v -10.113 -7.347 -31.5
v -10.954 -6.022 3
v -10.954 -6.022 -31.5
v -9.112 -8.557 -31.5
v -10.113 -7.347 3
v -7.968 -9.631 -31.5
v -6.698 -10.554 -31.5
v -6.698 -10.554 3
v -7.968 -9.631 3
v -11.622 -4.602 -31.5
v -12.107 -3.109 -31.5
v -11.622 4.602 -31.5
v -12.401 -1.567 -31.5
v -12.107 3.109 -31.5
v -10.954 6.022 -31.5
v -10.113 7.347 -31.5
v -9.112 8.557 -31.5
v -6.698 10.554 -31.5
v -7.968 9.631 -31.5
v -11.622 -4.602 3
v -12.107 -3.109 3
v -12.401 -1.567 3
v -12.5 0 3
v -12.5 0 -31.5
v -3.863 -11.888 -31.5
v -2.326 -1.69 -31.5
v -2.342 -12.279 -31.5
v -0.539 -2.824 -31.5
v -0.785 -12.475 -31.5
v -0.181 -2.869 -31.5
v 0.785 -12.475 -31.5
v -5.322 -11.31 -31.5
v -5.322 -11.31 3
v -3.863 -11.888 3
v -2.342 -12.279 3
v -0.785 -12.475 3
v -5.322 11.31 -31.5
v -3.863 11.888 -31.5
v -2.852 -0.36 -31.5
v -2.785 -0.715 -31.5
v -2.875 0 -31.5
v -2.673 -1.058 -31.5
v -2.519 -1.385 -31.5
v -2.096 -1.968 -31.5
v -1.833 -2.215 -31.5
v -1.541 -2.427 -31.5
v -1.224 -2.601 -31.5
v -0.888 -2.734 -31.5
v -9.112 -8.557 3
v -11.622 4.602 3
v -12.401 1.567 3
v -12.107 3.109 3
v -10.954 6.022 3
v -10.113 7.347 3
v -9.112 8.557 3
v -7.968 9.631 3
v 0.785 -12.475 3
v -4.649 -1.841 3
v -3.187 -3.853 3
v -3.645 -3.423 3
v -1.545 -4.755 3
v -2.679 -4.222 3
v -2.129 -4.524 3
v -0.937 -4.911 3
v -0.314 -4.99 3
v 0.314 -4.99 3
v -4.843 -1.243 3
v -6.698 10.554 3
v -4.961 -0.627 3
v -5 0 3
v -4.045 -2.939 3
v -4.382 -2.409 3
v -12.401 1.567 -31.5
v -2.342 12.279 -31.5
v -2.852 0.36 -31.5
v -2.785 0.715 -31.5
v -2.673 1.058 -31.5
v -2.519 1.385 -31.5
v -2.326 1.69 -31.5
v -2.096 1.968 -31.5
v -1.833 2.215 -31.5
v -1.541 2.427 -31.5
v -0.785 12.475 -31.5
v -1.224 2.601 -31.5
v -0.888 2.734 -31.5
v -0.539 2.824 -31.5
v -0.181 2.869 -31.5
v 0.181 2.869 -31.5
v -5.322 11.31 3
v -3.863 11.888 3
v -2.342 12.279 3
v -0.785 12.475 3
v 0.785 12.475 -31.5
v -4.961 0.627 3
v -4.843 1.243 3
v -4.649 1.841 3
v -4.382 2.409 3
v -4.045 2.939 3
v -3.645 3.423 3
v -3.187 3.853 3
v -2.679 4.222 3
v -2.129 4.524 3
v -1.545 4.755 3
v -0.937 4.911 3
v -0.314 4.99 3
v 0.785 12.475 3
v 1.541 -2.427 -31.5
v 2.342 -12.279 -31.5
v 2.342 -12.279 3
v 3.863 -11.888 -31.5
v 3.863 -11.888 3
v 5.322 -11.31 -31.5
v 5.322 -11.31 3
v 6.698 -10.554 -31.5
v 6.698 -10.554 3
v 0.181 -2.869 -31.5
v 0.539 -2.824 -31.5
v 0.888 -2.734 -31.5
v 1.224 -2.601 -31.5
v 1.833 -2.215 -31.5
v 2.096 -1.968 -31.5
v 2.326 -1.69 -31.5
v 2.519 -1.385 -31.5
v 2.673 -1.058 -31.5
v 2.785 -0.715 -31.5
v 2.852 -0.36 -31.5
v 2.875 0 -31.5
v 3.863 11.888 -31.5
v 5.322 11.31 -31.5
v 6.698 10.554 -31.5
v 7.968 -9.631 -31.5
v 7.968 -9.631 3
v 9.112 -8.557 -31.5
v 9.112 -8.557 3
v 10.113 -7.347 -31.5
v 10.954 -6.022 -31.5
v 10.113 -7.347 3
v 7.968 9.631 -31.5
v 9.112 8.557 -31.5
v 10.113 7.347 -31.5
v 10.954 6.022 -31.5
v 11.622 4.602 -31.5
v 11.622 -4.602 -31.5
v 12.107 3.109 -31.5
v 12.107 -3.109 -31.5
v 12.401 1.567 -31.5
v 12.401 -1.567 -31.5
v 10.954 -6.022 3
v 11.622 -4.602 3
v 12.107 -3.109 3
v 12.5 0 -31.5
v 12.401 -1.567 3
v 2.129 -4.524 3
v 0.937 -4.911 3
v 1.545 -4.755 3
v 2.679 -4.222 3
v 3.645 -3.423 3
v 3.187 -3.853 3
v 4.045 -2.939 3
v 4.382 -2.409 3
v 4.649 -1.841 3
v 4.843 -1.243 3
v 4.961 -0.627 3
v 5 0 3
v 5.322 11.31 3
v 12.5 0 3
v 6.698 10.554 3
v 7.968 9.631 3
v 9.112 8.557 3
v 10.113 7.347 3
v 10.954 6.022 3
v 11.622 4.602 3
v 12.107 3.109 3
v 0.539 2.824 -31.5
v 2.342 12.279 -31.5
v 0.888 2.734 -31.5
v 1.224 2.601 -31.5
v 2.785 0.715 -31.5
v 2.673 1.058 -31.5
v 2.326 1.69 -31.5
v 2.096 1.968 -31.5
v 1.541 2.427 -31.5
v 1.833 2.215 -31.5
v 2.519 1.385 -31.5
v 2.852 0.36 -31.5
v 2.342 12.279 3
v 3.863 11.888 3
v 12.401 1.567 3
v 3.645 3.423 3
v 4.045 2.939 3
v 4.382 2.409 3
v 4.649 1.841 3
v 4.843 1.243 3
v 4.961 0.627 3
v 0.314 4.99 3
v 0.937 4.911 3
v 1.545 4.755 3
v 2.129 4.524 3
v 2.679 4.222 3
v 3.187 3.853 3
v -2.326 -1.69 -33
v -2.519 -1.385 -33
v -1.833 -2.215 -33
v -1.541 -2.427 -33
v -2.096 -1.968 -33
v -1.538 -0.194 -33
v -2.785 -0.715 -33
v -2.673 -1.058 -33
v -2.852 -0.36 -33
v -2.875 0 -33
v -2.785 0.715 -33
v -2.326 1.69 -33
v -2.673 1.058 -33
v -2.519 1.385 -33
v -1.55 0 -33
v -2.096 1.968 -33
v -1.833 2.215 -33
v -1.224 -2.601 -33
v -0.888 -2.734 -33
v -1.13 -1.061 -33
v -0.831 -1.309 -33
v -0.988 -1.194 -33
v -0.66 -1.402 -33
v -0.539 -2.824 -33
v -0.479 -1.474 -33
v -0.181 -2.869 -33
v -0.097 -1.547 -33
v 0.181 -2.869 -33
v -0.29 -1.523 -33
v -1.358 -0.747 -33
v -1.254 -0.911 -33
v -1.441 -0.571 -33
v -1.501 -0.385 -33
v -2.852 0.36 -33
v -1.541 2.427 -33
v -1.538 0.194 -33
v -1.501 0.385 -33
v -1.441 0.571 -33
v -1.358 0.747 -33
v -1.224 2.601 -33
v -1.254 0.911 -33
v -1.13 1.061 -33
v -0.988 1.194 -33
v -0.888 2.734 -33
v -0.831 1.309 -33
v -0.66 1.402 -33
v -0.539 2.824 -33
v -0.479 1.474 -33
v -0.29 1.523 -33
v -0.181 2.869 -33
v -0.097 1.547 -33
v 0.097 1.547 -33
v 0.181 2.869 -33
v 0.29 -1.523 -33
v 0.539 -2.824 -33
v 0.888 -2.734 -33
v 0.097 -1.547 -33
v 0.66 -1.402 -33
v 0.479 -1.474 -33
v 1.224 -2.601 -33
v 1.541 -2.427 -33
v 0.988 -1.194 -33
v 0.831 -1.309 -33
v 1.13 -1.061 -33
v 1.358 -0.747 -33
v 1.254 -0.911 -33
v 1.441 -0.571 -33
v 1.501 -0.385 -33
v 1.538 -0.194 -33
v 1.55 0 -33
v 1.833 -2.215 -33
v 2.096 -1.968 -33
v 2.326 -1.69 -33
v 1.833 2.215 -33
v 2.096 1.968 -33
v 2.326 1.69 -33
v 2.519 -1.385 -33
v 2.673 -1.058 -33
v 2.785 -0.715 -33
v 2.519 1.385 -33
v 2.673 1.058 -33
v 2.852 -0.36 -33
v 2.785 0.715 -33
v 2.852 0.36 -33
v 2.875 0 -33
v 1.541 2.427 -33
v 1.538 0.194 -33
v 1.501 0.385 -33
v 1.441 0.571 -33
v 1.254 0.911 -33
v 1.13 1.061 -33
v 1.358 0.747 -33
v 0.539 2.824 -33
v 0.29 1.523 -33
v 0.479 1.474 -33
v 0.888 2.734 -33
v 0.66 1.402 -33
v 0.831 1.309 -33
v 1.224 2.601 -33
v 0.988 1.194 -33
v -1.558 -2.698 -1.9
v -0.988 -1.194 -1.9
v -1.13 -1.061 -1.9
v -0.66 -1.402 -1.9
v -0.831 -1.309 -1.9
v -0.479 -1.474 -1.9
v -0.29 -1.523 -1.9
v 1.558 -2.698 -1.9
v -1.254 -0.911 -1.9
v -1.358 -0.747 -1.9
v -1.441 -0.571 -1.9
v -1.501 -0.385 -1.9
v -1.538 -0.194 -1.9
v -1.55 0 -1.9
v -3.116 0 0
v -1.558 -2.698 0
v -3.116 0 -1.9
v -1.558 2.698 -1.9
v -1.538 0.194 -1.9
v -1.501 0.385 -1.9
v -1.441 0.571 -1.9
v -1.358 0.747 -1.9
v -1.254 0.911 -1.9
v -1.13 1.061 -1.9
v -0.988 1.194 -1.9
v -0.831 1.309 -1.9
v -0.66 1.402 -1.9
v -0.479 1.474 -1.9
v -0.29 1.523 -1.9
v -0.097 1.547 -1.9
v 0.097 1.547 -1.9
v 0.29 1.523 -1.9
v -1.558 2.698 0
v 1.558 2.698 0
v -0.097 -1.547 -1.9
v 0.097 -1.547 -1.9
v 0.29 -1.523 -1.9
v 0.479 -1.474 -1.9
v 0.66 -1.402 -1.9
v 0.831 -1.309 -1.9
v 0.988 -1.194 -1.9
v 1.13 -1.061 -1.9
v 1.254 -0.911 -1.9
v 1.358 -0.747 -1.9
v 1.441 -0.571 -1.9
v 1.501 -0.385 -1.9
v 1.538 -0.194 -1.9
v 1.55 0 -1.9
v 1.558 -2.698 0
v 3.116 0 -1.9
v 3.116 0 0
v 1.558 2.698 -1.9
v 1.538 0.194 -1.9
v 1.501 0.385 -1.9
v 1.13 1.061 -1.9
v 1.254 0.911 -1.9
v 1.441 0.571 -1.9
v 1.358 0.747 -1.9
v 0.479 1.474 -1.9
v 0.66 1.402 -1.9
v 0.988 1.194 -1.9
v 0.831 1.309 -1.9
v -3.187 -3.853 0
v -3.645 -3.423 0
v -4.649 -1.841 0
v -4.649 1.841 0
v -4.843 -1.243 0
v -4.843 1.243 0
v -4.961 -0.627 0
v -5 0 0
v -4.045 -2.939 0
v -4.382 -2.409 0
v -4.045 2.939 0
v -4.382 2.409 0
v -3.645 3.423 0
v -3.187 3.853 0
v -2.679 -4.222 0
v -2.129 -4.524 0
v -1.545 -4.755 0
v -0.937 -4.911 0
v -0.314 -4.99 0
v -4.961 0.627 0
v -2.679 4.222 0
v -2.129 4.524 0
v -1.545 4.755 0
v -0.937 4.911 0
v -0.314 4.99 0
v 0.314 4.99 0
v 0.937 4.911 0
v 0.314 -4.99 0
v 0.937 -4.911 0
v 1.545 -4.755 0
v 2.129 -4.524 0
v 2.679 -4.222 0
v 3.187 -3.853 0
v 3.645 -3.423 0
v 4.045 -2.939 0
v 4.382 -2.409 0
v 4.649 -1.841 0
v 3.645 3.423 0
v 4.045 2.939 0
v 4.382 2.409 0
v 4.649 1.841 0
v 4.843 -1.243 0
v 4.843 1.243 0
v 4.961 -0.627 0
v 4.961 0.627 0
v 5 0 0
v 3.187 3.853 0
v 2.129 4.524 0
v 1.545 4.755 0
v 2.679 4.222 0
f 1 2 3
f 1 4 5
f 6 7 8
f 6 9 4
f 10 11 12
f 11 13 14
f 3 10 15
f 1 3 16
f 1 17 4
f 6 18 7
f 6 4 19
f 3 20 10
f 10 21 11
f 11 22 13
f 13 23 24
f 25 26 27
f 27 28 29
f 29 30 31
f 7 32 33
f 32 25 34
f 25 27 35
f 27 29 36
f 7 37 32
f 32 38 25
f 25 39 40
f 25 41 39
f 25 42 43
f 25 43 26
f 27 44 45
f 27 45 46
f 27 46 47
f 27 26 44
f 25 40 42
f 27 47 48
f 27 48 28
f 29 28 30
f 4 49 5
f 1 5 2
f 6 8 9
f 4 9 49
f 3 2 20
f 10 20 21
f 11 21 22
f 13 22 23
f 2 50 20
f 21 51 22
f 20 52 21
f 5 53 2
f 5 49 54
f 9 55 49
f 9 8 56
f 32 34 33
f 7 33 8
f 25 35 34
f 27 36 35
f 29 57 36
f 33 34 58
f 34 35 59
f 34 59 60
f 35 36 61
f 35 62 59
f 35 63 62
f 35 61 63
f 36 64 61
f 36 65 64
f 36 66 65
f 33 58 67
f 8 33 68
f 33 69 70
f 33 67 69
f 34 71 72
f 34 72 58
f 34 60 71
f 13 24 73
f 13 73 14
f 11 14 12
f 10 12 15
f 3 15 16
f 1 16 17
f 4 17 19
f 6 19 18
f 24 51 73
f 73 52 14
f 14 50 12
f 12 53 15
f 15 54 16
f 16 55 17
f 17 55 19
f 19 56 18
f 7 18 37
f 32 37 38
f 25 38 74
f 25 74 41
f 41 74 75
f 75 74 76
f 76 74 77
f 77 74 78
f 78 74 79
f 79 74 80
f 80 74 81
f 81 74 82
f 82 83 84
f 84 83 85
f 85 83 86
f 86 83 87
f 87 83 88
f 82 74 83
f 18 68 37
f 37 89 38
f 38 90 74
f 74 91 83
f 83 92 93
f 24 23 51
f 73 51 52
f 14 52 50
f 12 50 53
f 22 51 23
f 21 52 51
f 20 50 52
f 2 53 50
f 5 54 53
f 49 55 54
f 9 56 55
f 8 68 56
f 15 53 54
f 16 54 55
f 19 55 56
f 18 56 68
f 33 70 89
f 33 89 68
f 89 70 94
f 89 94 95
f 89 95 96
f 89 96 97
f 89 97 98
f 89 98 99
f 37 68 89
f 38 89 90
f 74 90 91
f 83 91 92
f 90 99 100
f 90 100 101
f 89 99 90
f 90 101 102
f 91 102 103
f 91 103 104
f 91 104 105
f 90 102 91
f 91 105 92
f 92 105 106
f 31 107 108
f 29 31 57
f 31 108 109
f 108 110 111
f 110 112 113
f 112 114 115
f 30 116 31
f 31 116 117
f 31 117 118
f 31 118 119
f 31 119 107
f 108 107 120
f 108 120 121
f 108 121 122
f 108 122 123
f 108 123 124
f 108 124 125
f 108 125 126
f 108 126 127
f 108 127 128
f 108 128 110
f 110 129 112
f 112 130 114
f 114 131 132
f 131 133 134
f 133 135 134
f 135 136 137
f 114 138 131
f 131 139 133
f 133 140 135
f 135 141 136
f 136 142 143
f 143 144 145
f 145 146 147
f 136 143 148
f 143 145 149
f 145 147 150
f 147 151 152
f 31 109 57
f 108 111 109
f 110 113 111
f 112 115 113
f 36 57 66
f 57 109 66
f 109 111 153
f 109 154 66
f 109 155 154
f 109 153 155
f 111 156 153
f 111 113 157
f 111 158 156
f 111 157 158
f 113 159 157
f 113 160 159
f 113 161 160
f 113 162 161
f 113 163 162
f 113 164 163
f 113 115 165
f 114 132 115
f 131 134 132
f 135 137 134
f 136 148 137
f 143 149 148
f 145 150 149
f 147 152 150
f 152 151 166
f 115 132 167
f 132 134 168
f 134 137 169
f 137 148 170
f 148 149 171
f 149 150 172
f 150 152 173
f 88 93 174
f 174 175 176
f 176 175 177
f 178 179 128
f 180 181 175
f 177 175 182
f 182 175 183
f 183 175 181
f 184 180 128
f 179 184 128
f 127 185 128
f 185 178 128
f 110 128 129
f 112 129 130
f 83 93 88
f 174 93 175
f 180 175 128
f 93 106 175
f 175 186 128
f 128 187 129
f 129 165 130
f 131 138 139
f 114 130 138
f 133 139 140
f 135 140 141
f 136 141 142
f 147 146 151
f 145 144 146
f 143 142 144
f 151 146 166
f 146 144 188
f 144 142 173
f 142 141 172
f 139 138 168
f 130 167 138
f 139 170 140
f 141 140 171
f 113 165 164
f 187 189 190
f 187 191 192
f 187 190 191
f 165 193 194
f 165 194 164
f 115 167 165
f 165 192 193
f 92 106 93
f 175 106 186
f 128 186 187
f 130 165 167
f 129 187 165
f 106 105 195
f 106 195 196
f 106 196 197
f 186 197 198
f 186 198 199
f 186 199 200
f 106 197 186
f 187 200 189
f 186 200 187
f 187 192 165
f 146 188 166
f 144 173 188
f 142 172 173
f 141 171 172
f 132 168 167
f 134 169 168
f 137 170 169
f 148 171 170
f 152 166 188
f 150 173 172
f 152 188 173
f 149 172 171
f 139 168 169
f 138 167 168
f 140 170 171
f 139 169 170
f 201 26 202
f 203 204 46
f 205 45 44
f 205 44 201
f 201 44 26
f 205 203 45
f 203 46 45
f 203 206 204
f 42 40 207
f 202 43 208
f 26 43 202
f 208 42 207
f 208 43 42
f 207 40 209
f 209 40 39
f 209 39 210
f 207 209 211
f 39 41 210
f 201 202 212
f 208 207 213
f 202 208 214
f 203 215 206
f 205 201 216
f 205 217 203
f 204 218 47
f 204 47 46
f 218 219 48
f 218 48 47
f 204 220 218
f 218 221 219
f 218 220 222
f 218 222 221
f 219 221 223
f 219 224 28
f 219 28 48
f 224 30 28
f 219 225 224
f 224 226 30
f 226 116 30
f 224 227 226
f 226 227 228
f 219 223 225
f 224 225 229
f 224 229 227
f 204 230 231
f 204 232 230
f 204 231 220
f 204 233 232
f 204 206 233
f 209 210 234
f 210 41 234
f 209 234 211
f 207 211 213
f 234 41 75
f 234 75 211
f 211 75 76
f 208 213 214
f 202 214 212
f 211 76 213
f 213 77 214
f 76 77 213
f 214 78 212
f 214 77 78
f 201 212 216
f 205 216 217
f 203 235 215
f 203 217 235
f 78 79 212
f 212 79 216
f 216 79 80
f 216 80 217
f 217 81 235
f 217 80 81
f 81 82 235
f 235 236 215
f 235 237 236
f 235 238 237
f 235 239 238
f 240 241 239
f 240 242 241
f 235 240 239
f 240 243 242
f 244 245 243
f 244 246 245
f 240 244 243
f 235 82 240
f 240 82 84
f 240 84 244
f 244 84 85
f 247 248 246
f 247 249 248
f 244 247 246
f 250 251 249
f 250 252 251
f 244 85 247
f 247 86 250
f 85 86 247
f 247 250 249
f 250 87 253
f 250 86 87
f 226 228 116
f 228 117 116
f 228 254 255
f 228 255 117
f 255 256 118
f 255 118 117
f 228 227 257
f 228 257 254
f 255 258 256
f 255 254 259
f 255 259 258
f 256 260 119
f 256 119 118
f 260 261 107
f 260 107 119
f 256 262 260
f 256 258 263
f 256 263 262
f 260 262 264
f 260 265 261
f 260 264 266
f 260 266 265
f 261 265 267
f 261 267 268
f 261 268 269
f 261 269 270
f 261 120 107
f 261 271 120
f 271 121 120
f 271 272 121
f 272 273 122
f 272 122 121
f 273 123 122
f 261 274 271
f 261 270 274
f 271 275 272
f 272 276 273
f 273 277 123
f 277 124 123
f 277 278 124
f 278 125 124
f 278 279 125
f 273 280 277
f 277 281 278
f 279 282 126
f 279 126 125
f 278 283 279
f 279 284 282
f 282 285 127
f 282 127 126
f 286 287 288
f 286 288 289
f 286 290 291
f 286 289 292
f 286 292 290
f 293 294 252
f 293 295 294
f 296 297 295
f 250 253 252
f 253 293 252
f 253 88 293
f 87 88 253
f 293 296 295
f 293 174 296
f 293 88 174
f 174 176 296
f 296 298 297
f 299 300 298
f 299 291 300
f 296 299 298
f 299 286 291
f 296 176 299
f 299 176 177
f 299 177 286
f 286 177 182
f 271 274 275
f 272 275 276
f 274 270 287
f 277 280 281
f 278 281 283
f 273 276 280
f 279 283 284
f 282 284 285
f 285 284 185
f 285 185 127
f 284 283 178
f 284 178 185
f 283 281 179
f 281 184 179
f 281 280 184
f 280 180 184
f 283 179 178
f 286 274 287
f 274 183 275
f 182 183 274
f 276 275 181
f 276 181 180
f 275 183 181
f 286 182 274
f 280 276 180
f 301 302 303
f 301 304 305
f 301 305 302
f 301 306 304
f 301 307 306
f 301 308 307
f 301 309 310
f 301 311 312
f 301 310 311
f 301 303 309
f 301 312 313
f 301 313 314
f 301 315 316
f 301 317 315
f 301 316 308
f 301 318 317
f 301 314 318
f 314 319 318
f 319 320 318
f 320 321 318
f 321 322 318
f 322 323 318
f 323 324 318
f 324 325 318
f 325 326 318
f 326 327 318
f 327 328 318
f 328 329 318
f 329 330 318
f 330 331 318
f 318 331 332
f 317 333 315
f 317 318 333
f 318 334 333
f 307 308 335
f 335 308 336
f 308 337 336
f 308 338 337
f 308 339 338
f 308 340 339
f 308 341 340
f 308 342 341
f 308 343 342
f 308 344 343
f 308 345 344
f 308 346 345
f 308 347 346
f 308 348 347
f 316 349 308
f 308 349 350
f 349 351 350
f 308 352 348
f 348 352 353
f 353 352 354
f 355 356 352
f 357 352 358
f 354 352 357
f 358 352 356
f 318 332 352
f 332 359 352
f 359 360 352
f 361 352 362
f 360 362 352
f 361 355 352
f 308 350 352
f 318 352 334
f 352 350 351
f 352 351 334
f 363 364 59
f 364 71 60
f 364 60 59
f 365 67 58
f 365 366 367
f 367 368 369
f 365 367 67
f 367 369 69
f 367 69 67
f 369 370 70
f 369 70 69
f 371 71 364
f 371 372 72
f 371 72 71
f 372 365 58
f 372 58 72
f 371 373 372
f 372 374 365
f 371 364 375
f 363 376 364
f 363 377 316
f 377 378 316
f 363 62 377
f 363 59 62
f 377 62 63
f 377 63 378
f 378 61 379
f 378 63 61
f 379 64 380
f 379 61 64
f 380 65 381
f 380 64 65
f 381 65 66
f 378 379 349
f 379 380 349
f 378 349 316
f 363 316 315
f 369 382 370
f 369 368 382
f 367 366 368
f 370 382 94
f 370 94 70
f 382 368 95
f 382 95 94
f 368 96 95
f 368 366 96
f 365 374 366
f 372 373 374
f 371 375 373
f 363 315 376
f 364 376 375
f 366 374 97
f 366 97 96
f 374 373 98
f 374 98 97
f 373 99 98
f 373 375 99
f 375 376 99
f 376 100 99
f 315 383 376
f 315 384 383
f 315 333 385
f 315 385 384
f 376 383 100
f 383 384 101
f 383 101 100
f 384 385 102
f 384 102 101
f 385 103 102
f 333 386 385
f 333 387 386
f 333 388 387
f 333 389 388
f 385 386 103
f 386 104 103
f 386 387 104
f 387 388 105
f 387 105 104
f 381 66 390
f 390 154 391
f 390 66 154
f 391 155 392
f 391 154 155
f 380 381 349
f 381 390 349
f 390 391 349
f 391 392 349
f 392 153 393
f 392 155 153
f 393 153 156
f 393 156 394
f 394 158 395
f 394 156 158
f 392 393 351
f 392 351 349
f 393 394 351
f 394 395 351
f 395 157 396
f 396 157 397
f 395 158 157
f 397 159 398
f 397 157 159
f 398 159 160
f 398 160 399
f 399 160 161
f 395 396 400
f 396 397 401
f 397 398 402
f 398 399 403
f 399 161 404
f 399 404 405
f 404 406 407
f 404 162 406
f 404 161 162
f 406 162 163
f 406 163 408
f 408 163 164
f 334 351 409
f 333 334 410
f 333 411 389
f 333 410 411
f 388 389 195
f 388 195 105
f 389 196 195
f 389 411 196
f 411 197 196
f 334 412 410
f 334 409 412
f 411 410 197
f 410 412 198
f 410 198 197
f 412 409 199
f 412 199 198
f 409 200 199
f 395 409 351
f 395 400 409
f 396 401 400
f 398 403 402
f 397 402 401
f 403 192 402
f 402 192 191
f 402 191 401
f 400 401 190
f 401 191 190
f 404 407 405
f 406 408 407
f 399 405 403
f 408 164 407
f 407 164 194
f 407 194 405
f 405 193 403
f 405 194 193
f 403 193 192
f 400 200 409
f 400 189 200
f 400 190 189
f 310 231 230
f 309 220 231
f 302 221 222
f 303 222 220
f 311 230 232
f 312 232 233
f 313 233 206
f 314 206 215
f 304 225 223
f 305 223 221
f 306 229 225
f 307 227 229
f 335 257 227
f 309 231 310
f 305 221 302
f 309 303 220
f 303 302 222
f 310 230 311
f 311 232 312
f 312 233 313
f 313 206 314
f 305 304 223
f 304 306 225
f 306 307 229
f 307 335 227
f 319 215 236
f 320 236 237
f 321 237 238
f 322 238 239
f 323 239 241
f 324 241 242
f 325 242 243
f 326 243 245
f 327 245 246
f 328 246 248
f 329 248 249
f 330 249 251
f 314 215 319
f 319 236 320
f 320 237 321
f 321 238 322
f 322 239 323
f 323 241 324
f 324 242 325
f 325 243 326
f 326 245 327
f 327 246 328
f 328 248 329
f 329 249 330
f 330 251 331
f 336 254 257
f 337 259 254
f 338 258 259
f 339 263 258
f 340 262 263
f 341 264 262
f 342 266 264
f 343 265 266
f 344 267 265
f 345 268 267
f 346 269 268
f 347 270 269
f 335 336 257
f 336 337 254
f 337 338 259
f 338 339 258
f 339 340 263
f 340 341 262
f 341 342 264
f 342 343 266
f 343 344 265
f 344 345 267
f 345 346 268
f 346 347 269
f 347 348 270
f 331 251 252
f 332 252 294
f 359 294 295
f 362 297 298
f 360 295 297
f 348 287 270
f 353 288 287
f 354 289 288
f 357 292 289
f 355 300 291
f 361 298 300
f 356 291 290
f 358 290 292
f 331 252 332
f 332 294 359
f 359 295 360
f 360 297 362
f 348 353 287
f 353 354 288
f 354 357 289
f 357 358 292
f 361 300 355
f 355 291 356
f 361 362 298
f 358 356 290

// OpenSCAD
$fn = 50;


difference() {
	union() {
		translate(v = [0, 0, -31.5000000000]) {
			cylinder(h = 34.5000000000, r = 12.5000000000);
		}
		#translate(v = [0, 0, -33.0000000000]) {
			cylinder(h = 33, r = 2.8750000000);
		}
	}
	union() {
		translate(v = [0, 0, 0]) {
			rotate(a = [0, 0, 0]) {
				difference() {
					union() {
						translate(v = [0, 0, -1.9000000000]) {
							linear_extrude(height = 1.9000000000) {
								polygon(points = [[3.1158000000, 0.0000000000], [1.5579000000, 2.6983619531], [-1.5579000000, 2.6983619531], [-3.1158000000, 0.0000000000], [-1.5579000000, -2.6983619531], [1.5579000000, -2.6983619531]]);
							}
						}
					}
					union();
				}
			}
		}
		#cylinder(h = 3, r = 5.0000000000);
		#translate(v = [0, 0, -100.0000000000]) {
			cylinder(h = 200, r = 1.5500000000);
		}
	}
}
